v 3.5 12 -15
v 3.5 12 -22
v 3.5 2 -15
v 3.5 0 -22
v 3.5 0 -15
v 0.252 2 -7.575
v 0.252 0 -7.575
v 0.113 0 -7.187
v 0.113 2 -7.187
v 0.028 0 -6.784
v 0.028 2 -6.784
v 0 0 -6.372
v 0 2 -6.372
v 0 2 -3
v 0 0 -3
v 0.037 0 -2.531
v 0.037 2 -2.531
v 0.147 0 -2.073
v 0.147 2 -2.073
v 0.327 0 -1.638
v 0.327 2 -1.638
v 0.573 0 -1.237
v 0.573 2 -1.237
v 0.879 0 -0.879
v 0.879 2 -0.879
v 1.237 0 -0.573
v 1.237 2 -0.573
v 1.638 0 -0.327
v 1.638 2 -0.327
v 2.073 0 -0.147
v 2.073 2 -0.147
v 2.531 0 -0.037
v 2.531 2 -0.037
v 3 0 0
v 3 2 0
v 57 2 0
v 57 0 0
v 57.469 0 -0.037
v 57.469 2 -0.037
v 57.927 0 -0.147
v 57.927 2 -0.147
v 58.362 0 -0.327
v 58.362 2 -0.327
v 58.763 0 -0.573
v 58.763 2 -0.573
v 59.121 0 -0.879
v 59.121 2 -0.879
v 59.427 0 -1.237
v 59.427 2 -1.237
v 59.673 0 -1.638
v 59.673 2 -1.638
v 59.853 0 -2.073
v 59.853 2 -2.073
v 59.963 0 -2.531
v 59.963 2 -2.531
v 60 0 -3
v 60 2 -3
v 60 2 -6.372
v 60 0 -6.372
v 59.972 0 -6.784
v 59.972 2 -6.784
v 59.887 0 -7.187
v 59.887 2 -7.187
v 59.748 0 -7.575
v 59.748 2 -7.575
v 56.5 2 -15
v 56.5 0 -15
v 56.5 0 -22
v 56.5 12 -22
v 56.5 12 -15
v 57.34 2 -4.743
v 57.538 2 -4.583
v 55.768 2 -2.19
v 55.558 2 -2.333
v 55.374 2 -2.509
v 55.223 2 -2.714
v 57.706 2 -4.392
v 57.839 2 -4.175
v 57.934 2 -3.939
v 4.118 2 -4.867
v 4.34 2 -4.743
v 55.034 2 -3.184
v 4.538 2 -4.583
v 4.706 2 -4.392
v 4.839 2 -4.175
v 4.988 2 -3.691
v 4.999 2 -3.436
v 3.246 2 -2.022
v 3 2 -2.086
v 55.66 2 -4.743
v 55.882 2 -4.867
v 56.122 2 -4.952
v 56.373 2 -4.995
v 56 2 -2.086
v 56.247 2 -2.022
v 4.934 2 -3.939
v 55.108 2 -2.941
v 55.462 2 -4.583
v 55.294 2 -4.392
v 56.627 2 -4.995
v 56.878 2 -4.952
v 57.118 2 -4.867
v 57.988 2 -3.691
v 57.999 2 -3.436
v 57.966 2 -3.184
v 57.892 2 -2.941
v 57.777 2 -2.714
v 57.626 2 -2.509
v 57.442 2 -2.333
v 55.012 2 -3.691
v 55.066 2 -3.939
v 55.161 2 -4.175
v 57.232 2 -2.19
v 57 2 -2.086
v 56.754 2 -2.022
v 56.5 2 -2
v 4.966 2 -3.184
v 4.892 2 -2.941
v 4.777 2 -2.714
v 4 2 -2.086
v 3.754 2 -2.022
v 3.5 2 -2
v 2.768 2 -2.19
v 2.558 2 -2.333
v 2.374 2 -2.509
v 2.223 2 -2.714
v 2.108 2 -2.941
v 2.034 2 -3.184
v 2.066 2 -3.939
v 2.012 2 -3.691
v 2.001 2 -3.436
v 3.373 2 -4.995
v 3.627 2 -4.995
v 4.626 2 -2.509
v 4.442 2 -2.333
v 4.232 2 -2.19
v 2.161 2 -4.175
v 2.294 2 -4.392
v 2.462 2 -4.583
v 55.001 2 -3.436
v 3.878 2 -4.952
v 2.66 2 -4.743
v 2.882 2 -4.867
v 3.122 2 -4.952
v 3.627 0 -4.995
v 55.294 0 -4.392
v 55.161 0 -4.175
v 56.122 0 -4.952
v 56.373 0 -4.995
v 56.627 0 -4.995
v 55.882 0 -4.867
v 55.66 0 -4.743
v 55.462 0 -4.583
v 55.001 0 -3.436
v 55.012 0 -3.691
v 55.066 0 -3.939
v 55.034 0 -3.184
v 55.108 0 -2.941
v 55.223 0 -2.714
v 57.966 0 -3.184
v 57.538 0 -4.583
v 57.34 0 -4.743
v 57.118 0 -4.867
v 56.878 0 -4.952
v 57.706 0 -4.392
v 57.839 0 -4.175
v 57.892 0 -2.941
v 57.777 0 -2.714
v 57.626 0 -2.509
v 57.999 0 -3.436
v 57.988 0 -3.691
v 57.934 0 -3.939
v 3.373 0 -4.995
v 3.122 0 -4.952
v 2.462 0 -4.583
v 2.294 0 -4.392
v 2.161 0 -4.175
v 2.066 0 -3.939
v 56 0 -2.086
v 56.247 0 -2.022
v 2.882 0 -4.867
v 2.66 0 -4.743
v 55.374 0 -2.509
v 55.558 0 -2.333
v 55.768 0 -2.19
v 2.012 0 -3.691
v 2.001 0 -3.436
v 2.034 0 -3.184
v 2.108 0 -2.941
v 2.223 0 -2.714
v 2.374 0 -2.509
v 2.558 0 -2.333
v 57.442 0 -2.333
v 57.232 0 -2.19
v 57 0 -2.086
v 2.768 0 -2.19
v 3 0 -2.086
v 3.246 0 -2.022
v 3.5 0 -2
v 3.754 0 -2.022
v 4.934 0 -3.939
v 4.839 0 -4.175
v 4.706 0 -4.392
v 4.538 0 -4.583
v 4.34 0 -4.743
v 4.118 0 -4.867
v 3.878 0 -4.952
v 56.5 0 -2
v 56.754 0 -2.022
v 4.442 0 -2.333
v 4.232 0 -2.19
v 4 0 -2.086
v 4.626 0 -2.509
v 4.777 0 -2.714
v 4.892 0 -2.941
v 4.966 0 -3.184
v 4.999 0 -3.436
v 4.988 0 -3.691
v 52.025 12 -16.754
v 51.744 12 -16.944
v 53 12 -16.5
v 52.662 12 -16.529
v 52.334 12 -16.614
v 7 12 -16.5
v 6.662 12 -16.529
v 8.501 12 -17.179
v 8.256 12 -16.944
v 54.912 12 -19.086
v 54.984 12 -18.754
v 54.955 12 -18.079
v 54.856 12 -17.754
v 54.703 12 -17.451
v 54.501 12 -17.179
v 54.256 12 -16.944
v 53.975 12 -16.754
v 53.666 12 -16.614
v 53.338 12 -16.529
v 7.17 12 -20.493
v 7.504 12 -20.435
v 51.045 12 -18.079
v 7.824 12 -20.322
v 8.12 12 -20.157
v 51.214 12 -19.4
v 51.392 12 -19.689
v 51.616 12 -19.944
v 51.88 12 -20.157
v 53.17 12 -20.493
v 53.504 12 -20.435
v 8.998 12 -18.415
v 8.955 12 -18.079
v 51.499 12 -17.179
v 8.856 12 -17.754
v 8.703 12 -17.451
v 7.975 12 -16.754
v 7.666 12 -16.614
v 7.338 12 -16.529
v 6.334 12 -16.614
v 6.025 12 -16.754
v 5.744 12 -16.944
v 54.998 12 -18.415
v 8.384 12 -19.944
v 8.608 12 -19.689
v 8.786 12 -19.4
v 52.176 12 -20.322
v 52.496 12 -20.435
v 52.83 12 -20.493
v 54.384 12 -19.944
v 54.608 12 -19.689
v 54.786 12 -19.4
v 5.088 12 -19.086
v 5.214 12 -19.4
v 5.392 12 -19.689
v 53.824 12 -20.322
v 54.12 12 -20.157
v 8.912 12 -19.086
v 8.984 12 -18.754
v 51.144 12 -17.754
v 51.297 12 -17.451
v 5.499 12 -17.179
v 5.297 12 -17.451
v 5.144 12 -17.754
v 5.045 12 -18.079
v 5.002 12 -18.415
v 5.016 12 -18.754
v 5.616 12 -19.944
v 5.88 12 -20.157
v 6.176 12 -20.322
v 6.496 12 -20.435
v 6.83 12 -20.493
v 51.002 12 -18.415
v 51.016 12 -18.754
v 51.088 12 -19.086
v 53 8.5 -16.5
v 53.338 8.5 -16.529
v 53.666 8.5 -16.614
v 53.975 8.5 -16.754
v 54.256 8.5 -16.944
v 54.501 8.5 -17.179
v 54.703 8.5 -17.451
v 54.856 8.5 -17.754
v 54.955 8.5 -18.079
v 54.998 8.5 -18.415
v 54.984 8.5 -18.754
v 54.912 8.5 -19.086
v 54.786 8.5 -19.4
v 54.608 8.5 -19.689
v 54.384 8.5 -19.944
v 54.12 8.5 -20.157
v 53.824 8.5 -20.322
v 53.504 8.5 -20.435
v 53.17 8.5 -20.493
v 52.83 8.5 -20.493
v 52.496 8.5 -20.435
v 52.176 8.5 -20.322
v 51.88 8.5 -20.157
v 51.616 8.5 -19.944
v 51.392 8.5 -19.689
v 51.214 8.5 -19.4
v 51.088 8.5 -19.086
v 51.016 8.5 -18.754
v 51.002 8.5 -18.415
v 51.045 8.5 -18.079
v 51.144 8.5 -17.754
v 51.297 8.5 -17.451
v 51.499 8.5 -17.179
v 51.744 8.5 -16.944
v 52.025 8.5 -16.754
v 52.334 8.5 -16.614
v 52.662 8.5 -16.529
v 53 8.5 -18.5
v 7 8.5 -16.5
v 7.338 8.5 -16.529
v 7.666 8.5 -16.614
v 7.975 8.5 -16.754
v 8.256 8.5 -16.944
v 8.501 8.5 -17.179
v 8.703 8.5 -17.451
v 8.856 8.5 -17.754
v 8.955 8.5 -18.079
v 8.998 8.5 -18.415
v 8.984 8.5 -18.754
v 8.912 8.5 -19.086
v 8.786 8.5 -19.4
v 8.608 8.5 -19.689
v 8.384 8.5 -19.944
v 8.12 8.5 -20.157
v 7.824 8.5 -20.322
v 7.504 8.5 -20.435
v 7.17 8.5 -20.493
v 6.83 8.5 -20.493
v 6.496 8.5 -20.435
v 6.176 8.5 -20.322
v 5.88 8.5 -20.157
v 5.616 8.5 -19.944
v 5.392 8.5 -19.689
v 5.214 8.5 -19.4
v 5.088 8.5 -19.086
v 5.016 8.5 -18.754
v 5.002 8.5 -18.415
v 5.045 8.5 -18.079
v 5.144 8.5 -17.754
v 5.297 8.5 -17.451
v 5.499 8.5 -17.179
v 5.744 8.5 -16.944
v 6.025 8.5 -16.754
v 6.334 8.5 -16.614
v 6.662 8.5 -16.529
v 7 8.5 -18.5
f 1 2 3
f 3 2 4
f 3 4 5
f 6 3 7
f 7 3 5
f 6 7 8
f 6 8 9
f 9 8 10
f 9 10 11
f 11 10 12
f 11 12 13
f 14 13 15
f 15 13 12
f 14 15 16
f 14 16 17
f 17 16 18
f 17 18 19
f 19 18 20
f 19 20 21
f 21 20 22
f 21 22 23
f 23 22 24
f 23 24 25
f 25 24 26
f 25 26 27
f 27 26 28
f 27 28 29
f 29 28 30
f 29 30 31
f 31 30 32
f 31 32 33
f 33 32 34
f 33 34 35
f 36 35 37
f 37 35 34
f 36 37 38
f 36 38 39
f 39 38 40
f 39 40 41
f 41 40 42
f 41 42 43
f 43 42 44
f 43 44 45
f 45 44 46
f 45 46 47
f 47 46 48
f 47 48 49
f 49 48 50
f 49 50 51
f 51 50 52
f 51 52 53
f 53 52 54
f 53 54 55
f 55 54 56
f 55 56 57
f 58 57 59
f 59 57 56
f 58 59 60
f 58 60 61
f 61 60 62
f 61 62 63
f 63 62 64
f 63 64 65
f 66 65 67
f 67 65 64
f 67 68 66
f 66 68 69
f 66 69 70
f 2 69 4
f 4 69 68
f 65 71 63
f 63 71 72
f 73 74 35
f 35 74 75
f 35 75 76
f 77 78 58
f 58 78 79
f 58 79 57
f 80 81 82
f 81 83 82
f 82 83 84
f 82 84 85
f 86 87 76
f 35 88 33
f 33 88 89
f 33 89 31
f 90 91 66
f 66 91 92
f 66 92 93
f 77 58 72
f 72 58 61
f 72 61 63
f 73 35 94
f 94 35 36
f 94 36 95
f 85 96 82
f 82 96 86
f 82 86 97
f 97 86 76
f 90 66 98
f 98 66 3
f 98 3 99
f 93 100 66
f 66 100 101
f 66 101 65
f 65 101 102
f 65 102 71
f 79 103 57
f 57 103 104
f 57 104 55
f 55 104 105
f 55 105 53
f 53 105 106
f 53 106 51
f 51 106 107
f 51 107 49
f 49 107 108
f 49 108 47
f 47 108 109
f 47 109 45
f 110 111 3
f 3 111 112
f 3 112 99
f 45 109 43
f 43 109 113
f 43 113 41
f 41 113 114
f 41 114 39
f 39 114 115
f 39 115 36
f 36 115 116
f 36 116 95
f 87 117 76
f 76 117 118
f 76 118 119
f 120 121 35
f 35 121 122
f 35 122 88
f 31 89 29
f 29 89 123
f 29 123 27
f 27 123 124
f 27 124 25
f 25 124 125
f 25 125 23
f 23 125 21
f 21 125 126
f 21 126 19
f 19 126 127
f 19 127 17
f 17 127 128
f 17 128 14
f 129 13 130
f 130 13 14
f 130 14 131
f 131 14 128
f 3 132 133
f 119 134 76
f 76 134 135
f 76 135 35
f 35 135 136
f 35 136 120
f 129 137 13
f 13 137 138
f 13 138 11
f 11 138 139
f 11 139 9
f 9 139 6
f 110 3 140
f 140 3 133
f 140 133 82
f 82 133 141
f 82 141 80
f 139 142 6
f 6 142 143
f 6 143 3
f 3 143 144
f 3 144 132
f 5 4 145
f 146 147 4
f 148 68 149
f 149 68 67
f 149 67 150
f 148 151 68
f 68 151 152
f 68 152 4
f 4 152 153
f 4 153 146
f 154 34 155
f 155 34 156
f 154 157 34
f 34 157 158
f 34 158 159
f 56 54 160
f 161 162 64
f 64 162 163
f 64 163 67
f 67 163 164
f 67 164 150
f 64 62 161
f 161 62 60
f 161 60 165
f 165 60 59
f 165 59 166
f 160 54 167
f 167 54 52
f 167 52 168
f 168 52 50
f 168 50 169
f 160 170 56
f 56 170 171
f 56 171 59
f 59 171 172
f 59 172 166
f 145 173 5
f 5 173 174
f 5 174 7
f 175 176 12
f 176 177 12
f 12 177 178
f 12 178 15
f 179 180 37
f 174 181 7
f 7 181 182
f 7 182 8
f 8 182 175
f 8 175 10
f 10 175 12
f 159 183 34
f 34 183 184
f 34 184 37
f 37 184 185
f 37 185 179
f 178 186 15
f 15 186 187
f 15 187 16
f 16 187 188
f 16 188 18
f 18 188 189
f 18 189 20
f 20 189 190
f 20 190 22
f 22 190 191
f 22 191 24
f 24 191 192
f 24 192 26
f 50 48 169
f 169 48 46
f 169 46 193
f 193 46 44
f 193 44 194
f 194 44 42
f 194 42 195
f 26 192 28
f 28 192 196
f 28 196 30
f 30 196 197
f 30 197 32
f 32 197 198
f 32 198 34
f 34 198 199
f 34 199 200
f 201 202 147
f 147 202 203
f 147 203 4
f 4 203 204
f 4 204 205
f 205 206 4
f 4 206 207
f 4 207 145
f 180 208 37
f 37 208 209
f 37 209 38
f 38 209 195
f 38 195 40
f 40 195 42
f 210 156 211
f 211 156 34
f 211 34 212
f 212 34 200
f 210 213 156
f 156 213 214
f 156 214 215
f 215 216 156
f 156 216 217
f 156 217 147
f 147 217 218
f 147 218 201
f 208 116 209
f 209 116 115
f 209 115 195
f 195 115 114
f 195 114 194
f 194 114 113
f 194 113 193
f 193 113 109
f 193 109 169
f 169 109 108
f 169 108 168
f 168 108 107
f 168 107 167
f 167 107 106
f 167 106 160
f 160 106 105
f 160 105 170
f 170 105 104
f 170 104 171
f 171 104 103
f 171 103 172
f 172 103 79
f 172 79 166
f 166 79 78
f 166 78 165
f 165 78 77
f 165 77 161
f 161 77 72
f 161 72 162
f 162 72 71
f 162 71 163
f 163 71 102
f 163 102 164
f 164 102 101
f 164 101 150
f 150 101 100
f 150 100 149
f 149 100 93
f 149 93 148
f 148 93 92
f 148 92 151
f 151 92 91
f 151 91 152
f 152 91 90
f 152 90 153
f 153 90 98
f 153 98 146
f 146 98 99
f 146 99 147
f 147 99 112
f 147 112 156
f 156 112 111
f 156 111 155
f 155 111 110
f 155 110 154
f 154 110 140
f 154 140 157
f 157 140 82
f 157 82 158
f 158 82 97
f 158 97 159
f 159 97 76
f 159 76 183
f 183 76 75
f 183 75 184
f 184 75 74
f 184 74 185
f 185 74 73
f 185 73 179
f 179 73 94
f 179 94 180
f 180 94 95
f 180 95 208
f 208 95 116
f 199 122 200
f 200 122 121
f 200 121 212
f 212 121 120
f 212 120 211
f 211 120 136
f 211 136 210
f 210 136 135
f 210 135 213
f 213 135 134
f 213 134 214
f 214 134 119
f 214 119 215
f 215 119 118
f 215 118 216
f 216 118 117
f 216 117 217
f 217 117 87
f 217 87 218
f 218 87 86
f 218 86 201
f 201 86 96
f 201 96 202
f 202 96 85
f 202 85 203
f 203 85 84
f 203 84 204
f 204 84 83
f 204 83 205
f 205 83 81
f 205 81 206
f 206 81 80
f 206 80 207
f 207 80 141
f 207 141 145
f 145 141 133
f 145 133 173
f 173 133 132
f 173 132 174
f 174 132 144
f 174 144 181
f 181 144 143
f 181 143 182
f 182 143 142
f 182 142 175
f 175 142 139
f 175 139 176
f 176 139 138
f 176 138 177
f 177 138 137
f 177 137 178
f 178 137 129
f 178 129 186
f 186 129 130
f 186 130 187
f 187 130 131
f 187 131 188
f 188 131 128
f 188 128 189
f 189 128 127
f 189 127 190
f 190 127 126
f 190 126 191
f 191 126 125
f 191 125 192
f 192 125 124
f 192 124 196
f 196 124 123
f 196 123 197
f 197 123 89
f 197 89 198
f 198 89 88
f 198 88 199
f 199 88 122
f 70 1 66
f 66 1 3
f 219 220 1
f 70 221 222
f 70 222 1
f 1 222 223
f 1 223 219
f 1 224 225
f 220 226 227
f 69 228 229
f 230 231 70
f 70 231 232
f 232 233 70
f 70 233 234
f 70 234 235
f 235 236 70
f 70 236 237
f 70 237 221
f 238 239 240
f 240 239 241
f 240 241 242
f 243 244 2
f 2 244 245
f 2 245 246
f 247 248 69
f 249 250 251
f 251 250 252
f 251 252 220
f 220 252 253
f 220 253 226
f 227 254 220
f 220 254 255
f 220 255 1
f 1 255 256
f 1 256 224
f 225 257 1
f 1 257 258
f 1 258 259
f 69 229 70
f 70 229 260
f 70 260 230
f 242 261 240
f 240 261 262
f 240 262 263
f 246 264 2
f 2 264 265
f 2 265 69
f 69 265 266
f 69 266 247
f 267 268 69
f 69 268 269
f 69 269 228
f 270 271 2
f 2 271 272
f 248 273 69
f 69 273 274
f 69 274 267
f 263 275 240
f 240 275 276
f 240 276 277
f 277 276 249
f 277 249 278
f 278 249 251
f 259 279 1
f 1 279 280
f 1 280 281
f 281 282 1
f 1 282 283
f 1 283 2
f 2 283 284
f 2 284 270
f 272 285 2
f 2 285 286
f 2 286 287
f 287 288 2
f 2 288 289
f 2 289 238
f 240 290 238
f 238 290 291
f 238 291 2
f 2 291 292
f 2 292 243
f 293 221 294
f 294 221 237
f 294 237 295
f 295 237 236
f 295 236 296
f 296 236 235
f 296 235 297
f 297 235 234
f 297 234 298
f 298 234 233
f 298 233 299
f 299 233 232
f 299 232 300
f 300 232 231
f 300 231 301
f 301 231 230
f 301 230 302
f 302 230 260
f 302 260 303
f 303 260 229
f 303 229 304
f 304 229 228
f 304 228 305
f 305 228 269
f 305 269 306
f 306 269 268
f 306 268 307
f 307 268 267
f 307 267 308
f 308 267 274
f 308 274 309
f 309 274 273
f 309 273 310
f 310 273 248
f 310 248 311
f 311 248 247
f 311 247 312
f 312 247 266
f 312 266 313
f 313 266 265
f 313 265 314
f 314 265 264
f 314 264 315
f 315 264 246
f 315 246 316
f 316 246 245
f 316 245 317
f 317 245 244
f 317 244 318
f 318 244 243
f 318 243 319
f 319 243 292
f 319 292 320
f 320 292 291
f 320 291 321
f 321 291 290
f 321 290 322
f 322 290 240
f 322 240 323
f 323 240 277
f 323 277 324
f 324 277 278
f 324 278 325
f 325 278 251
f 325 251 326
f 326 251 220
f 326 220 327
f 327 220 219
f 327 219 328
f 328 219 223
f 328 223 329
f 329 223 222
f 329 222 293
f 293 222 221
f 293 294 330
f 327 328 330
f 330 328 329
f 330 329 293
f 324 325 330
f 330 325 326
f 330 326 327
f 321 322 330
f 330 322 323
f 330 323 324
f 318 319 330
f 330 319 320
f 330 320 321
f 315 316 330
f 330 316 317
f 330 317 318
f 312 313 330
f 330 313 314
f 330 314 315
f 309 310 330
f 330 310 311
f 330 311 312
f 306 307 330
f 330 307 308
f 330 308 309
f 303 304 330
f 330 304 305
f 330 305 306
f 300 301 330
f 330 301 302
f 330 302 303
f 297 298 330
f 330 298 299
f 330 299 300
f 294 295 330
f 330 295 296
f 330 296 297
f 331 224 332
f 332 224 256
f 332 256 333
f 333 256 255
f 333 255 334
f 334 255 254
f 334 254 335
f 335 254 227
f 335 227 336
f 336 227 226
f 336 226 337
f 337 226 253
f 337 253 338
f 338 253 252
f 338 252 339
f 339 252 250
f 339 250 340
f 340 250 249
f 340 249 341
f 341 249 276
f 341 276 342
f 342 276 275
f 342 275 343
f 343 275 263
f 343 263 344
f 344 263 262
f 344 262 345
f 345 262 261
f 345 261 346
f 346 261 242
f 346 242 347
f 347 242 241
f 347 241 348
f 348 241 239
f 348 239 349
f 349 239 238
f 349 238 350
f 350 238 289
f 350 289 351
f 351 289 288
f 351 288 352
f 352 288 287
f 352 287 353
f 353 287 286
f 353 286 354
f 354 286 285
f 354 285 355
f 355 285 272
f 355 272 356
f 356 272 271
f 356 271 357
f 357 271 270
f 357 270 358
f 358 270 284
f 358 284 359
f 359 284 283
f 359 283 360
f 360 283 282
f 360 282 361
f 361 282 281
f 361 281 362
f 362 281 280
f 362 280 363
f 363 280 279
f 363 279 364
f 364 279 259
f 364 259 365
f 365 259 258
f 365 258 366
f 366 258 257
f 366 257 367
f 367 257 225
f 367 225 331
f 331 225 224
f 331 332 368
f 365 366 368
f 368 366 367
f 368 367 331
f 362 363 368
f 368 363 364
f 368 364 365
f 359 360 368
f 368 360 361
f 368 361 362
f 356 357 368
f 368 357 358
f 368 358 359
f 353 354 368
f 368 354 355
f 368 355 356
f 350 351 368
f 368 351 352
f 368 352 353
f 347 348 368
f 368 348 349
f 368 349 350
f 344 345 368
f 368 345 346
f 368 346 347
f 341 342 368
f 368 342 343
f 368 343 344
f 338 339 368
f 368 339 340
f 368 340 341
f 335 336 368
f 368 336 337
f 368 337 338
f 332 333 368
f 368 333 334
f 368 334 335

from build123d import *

# Parameters (mm, degrees)
SKETCH1_W           = 53
SKETCH1_H           = 7
BOSS_EXTRUDE1_DEPTH = 2
SKETCH2_R           = 1.5
CUT_EXTRUDE1_DEPTH  = 2
SKETCH3_W           = 53
SKETCH3_H           = 7
BOSS_EXTRUDE2_DEPTH = 10
SKETCH4_R           = 2
CUT_EXTRUDE2_DEPTH  = 3.5


with BuildPart() as part:
    # Sketch1 → Boss-Extrude1 (new body)
    with BuildSketch(Plane(origin=(0, 0, 0), x_dir=(1, 0, 0), z_dir=(0, 1, 0))):
        with BuildLine():
            Line((3.5, 15), (0.251527995, 7.574921132))
            ThreePointArc((0.251527995, 7.574921132), (0.144442027, 7.29213232), (0.066367549, 7))
            Line((0.066367549, 7), (59.933632451, 7))
            ThreePointArc((59.933632451, 7), (59.855557973, 7.29213232), (59.748472005, 7.574921132))
            Line((59.748472005, 7.574921132), (56.5, 15))
            Line((56.5, 15), (3.5, 15))
        make_face()
        with Locations((30, 18.5)):
            Rectangle(SKETCH1_W, SKETCH1_H)
        with BuildLine():
            Line((59.933632451, 7), (0.066367549, 7))
            ThreePointArc((0.066367549, 7), (0.016638024, 6.687982178), (0, 6.37246463))
            Line((0, 6.37246463), (0, 3))
            ThreePointArc((0, 3), (0.878679656, 0.878679656), (3, 0))
            Line((3, 0), (57, 0))
            ThreePointArc((57, 0), (59.121320344, 0.878679656), (60, 3))
            Line((60, 3), (60, 6.37246463))
            ThreePointArc((60, 6.37246463), (59.983361976, 6.687982178), (59.933632451, 7))
        make_face()
    extrude(amount=BOSS_EXTRUDE1_DEPTH)

    # Sketch2 → Cut-Extrude1 (cut)
    with BuildSketch(Plane(origin=(0, 2, 0), x_dir=(1, 0, 0), z_dir=(0, 1, 0))):
        with Locations(Location((3.5, 3.5, 0), (0, 0, 270))):
            Circle(SKETCH2_R)
        with Locations(Location((56.5, 3.5, 0), (0, 0, 270))):
            Circle(SKETCH2_R)
    extrude(amount=-CUT_EXTRUDE1_DEPTH, mode=Mode.SUBTRACT)

    # Sketch3 → Boss-Extrude2 (add)
    with BuildSketch(Plane(origin=(0, 2, 0), x_dir=(1, 0, 0), z_dir=(0, 1, 0))):
        with Locations((30, 18.5)):
            Rectangle(SKETCH3_W, SKETCH3_H)
    extrude(amount=BOSS_EXTRUDE2_DEPTH)

    # Sketch4 → Cut-Extrude2 (cut)
    with BuildSketch(Plane(origin=(0, 12, 0), x_dir=(1, 0, 0), z_dir=(0, 1, 0))):
        with Locations(Location((7, 18.5, 0), (0, 0, 270))):
            Circle(SKETCH4_R)
        with Locations(Location((53, 18.5, 0), (0, 0, 270))):
            Circle(SKETCH4_R)
    extrude(amount=-CUT_EXTRUDE2_DEPTH, mode=Mode.SUBTRACT)


solid = part.part
